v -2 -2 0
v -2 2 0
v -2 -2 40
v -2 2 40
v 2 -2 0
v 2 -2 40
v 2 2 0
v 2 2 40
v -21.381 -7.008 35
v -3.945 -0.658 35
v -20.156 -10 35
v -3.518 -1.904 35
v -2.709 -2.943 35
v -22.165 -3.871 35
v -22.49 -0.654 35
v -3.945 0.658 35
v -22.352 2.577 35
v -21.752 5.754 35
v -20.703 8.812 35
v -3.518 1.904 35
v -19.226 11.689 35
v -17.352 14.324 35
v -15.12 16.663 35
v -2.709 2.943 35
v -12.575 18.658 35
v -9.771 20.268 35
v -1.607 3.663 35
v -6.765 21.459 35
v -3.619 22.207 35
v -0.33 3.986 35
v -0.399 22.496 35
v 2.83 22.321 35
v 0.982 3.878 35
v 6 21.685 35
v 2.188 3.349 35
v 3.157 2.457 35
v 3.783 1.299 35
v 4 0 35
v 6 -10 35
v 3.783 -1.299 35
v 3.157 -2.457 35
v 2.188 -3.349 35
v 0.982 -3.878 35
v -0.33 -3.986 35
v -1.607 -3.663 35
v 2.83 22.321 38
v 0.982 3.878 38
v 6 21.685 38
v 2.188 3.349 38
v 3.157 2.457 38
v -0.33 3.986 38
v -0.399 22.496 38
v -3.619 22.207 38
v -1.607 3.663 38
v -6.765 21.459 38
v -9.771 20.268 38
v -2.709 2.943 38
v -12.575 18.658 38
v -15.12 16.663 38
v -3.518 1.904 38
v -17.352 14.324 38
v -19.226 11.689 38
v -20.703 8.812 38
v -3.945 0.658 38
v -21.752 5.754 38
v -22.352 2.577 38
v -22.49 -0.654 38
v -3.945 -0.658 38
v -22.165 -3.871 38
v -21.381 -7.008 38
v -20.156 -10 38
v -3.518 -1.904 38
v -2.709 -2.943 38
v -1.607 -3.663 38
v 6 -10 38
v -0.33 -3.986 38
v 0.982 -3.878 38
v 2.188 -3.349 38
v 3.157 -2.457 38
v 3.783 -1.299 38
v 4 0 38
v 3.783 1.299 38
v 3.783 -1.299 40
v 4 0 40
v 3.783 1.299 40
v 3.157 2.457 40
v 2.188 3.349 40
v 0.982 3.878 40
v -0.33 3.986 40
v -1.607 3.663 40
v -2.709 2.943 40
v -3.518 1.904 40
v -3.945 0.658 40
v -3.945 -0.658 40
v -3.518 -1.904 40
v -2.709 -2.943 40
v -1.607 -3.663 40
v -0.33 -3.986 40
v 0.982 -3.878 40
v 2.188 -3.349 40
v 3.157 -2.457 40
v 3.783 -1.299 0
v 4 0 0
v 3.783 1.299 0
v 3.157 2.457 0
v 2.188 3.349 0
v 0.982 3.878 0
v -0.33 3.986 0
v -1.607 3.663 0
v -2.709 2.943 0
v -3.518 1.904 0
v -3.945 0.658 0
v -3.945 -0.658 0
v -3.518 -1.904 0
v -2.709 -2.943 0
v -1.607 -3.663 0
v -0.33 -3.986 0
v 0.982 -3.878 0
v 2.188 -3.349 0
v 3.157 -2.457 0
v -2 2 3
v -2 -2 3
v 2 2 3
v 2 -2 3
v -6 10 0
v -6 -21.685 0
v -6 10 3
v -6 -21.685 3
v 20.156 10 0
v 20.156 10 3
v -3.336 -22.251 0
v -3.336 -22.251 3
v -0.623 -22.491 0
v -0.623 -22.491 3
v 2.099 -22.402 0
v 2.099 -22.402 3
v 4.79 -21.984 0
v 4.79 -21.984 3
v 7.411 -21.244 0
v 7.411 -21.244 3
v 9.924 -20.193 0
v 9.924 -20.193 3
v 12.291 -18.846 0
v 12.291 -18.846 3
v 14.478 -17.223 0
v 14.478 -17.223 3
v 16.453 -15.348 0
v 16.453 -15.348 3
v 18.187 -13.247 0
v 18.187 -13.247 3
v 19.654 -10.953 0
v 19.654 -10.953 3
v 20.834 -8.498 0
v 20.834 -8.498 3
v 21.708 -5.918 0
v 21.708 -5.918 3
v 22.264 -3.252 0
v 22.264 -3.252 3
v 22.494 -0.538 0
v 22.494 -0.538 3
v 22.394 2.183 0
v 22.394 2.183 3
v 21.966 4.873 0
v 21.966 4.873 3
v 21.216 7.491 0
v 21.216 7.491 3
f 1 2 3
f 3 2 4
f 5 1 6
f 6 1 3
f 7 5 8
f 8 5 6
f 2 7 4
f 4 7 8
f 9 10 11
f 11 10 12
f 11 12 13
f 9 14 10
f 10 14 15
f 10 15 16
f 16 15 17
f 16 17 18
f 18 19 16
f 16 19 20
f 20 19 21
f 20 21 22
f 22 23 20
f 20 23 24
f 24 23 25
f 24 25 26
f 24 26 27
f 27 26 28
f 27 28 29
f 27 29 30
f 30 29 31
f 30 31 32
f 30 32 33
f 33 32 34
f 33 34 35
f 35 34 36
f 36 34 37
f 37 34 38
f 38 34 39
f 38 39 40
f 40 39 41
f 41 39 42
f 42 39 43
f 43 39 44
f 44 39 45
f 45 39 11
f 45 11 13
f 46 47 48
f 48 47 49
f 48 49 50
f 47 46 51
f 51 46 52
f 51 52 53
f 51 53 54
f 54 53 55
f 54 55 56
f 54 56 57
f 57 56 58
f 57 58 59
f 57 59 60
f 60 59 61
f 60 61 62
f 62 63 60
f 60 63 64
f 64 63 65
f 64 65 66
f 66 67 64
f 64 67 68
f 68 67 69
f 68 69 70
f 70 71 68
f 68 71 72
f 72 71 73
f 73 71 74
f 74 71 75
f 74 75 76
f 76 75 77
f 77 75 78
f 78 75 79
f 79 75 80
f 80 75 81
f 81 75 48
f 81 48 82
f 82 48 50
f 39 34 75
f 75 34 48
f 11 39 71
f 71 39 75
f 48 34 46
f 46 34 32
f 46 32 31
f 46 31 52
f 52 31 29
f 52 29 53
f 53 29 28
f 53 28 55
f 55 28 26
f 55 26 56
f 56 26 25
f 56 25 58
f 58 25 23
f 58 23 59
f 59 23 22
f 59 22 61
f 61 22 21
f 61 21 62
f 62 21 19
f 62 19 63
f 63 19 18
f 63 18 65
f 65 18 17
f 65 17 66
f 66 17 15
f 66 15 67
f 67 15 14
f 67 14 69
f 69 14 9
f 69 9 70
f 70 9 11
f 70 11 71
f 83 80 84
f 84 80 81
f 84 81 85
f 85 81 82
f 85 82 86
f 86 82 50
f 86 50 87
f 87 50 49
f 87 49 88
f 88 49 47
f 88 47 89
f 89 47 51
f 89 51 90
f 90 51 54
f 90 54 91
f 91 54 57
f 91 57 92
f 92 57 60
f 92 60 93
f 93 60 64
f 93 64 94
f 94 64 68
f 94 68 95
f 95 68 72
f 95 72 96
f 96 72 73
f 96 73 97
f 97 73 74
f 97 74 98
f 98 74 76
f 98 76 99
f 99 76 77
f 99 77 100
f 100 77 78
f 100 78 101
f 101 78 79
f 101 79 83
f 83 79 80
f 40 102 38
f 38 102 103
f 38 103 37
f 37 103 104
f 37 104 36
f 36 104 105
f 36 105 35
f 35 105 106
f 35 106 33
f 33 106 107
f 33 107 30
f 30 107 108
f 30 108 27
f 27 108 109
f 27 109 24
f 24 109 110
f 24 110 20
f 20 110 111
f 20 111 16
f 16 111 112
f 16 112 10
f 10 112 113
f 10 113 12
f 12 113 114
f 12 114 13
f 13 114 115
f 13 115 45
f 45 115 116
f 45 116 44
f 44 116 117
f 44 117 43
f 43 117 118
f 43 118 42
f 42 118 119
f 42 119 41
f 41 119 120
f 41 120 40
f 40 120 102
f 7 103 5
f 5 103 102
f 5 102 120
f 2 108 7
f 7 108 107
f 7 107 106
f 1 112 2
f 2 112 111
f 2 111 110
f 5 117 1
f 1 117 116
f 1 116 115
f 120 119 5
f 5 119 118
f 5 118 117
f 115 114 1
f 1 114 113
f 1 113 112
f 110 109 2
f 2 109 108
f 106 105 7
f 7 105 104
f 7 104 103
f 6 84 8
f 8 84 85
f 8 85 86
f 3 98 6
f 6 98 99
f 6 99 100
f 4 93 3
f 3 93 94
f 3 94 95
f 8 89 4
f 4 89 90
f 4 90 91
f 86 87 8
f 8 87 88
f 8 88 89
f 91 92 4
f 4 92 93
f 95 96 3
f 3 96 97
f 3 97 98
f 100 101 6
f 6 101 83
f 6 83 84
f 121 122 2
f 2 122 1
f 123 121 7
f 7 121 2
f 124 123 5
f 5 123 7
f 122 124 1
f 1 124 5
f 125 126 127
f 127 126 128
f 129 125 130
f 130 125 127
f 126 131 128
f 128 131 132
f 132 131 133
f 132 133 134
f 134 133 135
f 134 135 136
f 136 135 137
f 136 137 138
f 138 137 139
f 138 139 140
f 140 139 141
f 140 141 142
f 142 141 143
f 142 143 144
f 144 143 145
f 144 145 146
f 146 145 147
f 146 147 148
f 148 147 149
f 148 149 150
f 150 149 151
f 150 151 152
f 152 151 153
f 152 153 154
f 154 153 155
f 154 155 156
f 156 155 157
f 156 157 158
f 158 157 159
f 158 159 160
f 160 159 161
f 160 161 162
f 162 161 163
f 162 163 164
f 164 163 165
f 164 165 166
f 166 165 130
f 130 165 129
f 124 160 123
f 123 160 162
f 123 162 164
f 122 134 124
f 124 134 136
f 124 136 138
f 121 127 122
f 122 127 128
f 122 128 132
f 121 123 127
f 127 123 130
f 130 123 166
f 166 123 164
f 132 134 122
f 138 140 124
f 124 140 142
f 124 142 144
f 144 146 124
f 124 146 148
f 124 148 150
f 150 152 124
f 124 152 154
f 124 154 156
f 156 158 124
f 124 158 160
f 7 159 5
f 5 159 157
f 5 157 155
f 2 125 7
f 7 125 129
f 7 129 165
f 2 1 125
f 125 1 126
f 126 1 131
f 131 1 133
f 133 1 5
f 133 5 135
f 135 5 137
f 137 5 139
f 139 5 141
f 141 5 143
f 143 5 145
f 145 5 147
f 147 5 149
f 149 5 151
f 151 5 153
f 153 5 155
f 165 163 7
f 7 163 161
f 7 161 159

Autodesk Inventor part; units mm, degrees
ref_plane "YZ Plane" through (0, 0, 0) normal (1, 0, 0) x (0, 1, 0)
ref_plane "XZ Plane" through (0, 0, 0) normal (0, 1, 0) x (-1, 0, 0)
sketch "Sketch1" plane through (0, 0, 0) normal (0, 0, 1) x (1, 0, 0)
  circle A0 centre (0, 0) radius 4
extrude "Extrusion1" add sketch "Sketch1" along normal blind 40
ref_plane "Work Plane5" through (0, 0, 35) normal (0, 0, 1) x (1, 0, 0)
sketch "Sketch5" plane through (0, 0, 35) normal (0, 0, 1) x (1, 0, 0)
  arc A0 (6, 21.6852) -> (-20.1556, -10) centre (0, 0) ccw
  line L0 (-20.1556, -10) -> (6, -10)
  line L1 (6, 21.6852) -> (6, -10)
  dimension "d19" = 45
extrude "Extrusion4" add sketch "Sketch5" along normal blind 3
sketch "Sketch6" plane through (0, 0, 0) normal (0, 0, -1) x (-1, 0, 0)
  arc A0 (-20.1556, 10) -> (6, -21.6852) centre (0, 0) ccw
  line L0 (6, 10) -> (-20.1556, 10)
  line L1 (6, 10) -> (6, -21.6852)
  dimension "d20" = 45
extrude "Extrusion5" add sketch "Sketch6" against normal blind 3 separate body
sketch "Sketch3" plane through (0, 0, 0) normal (0, 0, -1) x (-1, 0, 0)
  line L0 (2, 2) -> (-2, 2)
  line L1 (-2, 2) -> (-2, -2)
  line L2 (-2, -2) -> (2, -2)
  line L3 (2, -2) -> (2, 2)
  line L4 (2, 2) -> (-2, -2) construction
  line L5 (-2, 2) -> (2, -2) construction
  point P0 (0, 0)
  dimension "d5" = 4
  dimension "d6" = 4
extrude "Extrusion3" cut sketch "Sketch3" against normal blind 40 and the other way blind 5 bodies 1 2
properties part number "DispenserAugerV2"
